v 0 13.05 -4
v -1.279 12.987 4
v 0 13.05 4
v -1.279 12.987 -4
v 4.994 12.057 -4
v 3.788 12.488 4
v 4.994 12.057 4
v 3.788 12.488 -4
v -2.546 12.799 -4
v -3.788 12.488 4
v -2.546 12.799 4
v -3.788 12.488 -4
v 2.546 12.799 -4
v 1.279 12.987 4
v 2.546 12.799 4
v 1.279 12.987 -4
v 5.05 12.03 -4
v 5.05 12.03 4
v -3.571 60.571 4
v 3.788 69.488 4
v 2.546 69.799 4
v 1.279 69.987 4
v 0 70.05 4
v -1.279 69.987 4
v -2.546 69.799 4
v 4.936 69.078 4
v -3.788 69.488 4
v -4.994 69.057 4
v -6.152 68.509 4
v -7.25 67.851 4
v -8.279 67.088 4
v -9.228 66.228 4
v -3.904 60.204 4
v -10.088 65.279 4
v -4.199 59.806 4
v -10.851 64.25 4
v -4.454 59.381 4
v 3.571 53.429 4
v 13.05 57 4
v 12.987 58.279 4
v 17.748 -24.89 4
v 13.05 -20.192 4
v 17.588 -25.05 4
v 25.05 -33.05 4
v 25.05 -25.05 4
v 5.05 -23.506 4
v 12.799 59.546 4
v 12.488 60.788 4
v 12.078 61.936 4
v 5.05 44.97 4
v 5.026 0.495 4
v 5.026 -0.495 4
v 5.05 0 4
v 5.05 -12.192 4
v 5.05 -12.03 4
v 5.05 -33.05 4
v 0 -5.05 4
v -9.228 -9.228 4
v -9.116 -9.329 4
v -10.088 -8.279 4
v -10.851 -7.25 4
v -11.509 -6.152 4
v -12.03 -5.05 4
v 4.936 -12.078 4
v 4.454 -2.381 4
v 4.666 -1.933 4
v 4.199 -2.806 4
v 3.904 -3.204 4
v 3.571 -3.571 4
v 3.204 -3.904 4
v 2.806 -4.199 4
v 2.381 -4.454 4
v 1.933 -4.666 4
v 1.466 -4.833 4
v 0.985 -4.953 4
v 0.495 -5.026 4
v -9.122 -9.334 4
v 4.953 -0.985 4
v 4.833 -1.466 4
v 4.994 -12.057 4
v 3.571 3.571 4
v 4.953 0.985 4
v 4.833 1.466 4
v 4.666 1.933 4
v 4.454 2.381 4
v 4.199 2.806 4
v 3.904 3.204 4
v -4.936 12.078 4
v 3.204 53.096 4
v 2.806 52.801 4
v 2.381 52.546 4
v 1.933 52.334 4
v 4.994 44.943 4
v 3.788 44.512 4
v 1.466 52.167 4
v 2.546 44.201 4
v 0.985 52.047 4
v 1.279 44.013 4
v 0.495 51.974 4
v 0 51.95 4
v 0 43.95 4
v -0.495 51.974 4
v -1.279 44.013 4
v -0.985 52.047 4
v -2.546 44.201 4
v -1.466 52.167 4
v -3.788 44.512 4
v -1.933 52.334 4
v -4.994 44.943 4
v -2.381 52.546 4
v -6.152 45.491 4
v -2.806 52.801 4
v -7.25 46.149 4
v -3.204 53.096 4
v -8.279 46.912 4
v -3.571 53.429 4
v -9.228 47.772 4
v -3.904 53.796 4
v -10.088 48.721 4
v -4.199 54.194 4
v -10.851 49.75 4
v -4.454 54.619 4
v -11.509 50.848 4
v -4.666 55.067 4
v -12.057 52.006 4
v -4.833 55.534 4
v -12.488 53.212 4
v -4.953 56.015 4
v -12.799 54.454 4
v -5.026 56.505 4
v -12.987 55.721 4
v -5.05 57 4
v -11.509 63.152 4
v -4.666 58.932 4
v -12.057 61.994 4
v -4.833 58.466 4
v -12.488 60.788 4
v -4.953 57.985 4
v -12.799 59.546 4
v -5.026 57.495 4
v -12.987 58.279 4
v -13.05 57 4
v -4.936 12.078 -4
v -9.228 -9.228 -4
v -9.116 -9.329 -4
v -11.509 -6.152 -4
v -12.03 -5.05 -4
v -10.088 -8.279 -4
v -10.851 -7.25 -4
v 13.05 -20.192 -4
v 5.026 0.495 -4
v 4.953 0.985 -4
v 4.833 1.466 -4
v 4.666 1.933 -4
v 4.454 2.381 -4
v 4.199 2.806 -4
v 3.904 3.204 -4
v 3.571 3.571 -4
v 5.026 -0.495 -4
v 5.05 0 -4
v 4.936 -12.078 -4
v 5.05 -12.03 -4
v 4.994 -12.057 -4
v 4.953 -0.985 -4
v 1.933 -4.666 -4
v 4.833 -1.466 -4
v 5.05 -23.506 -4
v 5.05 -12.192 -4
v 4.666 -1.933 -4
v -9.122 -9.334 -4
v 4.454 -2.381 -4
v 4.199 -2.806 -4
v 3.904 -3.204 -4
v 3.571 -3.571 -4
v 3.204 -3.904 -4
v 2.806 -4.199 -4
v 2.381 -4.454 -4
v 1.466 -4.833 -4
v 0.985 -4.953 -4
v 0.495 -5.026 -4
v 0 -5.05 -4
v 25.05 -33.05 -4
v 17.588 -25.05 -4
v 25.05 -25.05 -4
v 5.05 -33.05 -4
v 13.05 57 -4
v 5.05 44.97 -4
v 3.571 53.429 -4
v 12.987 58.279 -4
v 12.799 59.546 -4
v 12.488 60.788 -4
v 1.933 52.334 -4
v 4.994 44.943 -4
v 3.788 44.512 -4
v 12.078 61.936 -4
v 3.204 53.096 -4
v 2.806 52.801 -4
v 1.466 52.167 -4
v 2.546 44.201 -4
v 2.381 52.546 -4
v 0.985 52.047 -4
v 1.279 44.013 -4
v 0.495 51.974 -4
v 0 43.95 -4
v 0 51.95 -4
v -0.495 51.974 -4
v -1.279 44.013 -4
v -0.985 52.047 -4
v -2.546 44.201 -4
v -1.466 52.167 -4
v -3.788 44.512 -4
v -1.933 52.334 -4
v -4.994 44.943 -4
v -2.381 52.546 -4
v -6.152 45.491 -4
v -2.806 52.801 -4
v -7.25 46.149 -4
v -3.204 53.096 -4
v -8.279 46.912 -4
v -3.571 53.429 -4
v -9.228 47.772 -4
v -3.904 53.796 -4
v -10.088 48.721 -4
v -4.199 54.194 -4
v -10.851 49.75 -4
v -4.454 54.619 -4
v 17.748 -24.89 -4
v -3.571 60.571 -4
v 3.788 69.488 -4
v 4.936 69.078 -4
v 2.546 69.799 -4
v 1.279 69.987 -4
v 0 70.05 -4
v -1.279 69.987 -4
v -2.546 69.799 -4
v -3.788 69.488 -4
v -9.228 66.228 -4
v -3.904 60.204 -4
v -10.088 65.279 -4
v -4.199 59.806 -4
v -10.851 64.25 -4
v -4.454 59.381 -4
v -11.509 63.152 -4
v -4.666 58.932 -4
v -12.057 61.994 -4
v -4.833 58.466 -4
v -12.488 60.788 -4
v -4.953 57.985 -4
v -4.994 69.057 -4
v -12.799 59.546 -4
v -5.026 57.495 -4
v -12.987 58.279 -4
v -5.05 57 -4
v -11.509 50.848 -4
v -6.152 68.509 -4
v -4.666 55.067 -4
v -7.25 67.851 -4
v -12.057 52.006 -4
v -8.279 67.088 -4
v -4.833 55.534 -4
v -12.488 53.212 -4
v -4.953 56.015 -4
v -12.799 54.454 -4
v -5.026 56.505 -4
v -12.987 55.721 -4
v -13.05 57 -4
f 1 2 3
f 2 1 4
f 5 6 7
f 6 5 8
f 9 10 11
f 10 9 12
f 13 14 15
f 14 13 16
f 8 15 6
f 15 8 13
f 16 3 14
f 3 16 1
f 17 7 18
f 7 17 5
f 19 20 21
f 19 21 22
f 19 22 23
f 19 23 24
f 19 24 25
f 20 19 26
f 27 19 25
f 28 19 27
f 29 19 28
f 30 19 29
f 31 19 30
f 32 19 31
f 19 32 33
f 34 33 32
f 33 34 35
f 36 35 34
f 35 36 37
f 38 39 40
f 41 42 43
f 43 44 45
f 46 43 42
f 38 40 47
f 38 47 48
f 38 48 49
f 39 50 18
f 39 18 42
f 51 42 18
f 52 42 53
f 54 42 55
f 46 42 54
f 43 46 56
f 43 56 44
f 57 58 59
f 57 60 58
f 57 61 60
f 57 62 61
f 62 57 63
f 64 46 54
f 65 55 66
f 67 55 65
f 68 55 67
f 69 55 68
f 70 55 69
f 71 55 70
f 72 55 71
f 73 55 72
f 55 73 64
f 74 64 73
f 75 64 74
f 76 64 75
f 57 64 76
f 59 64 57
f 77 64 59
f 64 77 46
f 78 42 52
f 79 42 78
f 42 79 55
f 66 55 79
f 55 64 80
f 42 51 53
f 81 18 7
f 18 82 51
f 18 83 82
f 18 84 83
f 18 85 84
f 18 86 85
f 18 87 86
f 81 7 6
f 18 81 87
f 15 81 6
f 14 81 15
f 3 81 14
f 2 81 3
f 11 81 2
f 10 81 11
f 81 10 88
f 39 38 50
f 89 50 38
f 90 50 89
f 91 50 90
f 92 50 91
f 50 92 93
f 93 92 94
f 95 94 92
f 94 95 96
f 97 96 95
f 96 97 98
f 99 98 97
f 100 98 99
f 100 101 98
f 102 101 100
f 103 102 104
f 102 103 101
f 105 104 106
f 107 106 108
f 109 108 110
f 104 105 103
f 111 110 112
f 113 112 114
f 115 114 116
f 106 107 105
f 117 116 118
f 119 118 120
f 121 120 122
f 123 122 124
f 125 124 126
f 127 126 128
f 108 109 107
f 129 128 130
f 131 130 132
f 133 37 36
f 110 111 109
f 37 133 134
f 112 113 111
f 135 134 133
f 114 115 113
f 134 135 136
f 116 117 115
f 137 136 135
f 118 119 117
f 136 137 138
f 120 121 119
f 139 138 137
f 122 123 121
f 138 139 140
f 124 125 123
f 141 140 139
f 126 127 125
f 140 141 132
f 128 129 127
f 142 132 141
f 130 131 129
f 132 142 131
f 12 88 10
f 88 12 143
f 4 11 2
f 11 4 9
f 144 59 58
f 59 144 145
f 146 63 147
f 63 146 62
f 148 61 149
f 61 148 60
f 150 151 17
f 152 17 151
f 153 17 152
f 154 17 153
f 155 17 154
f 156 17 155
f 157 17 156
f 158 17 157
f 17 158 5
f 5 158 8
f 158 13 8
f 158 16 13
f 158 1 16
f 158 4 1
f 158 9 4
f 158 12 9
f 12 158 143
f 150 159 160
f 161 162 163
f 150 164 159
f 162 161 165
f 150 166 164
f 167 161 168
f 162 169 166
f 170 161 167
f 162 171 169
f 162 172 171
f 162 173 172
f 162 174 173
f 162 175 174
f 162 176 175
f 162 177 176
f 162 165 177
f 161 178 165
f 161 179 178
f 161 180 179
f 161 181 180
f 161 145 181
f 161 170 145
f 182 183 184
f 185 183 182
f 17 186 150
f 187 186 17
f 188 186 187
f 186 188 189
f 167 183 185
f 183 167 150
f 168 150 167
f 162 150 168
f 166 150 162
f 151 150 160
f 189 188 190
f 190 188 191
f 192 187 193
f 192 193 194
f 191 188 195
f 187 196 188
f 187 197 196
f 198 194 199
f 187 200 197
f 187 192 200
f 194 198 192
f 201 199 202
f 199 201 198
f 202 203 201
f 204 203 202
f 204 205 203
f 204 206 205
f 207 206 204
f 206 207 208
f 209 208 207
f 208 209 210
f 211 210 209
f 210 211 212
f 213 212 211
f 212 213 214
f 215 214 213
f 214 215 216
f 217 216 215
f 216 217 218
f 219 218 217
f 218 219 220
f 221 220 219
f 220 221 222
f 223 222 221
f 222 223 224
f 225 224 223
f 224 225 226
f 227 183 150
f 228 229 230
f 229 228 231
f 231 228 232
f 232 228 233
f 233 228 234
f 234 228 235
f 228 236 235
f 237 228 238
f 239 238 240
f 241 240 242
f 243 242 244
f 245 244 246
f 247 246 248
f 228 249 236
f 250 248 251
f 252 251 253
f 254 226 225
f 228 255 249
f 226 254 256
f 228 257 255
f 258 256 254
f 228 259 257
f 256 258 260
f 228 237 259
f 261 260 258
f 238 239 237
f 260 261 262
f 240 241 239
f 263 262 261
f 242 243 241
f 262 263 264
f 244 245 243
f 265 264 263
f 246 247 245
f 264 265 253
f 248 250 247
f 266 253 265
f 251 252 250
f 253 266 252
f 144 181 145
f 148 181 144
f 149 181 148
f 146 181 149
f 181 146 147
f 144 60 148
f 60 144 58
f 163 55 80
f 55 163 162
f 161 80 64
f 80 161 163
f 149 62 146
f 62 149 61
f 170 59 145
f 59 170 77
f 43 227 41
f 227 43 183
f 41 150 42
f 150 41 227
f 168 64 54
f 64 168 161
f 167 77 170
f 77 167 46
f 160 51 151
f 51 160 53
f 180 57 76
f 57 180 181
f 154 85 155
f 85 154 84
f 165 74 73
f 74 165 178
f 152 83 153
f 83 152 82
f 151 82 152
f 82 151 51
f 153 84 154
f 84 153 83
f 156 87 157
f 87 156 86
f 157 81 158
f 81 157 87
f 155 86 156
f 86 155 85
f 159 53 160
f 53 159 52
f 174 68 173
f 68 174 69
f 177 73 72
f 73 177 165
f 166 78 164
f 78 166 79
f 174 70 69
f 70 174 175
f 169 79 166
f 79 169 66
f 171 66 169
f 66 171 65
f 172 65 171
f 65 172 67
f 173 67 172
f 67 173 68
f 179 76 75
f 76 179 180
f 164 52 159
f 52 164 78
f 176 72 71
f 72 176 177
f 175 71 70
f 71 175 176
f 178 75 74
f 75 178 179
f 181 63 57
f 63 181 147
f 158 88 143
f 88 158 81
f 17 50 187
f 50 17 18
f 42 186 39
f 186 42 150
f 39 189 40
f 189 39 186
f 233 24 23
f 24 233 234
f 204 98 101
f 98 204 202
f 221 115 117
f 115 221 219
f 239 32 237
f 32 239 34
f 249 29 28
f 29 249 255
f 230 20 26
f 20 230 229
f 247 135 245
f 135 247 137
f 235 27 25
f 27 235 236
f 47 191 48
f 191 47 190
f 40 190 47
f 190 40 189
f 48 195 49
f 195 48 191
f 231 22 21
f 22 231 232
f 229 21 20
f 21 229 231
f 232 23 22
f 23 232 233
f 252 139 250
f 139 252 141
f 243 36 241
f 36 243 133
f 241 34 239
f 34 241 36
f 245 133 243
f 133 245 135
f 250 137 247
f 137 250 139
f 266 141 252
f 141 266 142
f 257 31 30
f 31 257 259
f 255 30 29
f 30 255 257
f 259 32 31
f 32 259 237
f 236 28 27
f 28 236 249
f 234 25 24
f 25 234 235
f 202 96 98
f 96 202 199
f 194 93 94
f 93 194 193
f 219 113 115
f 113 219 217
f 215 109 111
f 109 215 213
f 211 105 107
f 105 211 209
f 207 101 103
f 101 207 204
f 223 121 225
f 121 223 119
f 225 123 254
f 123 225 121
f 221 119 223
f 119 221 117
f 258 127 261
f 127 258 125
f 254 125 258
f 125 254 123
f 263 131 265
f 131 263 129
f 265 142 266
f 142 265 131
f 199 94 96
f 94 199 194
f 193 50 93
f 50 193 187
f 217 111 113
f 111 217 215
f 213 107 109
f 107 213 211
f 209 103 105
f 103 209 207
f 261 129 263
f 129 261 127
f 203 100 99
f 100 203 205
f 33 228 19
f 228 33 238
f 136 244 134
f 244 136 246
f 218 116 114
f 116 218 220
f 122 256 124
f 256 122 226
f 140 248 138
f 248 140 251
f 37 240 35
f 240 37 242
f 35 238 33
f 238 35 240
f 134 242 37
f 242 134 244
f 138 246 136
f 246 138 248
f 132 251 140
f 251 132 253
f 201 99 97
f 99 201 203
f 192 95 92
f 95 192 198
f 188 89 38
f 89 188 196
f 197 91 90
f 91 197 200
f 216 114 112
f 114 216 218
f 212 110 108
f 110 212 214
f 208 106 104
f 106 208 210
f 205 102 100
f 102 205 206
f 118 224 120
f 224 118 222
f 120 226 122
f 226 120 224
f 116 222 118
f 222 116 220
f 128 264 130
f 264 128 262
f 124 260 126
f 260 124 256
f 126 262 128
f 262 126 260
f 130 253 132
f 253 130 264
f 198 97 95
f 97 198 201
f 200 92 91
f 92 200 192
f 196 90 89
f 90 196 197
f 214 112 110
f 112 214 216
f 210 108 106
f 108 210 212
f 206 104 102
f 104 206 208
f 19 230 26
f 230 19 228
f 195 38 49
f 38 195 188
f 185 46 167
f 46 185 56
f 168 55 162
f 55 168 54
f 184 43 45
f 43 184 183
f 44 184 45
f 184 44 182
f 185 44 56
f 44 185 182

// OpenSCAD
tubusTubeRadius = 10.1 / 2;
tubusTubesDelta = 57;

whaterCrateFrame = 20;
noseHeight = 20;

thick = 8;


tubusOuterRadius = tubusTubeRadius + thick;

tubusOffset = tubusTubeRadius + thick / 2;
difference() {
    union() {
        cylinder(h=thick, r=tubusOuterRadius, center=true, $fn=64);
        rotate(a=-45)
        translate([tubusTubeRadius*3 ,-tubusTubeRadius - thick / 2, 0])
        cube([noseHeight * 1.5, thick, thick], true);;
    }
    
    cylinder(h=thick + .2, r=tubusTubeRadius, center=true, $fn=64);
    translate([- tubusOuterRadius / 2, 0, 0])
    #cube([tubusOuterRadius, tubusTubeRadius*2, thick], true);
    
    rotate(a=-45)
    translate([- tubusOuterRadius / 2, 0, 0])
    #cube([tubusOuterRadius, tubusTubeRadius*2, thick], true);

}

translate([tubusOffset, 0, 0])
cube([thick, whaterCrateFrame, thick], true);

translate([tubusOffset, -tubusTubeRadius -whaterCrateFrame/2, 0])
cube([thick, whaterCrateFrame, thick], true);

translate([(noseHeight - thick) / 2 + tubusOffset , - tubusTubeRadius - whaterCrateFrame - thick/2, 0])
cube([noseHeight, thick, thick], true);


difference() {
    union() {
        translate([tubusOffset, tubusTubesDelta / 2, 0])
        cube([thick, tubusTubesDelta, thick], true);
        translate([0, tubusTubesDelta, 0])
        cylinder(h=thick, r=tubusOuterRadius, center=true, $fn=64);
    }
    translate([0, tubusTubesDelta, 0])
    cylinder(h=thick + .2, r=tubusTubeRadius, center=true, $fn=64);

    translate([0, tubusTubesDelta, 0])
    rotate(a=-45)
    translate([0, tubusOuterRadius / 2, 0])
    cube([tubusTubeRadius*2, tubusOuterRadius, thick], true);
}
